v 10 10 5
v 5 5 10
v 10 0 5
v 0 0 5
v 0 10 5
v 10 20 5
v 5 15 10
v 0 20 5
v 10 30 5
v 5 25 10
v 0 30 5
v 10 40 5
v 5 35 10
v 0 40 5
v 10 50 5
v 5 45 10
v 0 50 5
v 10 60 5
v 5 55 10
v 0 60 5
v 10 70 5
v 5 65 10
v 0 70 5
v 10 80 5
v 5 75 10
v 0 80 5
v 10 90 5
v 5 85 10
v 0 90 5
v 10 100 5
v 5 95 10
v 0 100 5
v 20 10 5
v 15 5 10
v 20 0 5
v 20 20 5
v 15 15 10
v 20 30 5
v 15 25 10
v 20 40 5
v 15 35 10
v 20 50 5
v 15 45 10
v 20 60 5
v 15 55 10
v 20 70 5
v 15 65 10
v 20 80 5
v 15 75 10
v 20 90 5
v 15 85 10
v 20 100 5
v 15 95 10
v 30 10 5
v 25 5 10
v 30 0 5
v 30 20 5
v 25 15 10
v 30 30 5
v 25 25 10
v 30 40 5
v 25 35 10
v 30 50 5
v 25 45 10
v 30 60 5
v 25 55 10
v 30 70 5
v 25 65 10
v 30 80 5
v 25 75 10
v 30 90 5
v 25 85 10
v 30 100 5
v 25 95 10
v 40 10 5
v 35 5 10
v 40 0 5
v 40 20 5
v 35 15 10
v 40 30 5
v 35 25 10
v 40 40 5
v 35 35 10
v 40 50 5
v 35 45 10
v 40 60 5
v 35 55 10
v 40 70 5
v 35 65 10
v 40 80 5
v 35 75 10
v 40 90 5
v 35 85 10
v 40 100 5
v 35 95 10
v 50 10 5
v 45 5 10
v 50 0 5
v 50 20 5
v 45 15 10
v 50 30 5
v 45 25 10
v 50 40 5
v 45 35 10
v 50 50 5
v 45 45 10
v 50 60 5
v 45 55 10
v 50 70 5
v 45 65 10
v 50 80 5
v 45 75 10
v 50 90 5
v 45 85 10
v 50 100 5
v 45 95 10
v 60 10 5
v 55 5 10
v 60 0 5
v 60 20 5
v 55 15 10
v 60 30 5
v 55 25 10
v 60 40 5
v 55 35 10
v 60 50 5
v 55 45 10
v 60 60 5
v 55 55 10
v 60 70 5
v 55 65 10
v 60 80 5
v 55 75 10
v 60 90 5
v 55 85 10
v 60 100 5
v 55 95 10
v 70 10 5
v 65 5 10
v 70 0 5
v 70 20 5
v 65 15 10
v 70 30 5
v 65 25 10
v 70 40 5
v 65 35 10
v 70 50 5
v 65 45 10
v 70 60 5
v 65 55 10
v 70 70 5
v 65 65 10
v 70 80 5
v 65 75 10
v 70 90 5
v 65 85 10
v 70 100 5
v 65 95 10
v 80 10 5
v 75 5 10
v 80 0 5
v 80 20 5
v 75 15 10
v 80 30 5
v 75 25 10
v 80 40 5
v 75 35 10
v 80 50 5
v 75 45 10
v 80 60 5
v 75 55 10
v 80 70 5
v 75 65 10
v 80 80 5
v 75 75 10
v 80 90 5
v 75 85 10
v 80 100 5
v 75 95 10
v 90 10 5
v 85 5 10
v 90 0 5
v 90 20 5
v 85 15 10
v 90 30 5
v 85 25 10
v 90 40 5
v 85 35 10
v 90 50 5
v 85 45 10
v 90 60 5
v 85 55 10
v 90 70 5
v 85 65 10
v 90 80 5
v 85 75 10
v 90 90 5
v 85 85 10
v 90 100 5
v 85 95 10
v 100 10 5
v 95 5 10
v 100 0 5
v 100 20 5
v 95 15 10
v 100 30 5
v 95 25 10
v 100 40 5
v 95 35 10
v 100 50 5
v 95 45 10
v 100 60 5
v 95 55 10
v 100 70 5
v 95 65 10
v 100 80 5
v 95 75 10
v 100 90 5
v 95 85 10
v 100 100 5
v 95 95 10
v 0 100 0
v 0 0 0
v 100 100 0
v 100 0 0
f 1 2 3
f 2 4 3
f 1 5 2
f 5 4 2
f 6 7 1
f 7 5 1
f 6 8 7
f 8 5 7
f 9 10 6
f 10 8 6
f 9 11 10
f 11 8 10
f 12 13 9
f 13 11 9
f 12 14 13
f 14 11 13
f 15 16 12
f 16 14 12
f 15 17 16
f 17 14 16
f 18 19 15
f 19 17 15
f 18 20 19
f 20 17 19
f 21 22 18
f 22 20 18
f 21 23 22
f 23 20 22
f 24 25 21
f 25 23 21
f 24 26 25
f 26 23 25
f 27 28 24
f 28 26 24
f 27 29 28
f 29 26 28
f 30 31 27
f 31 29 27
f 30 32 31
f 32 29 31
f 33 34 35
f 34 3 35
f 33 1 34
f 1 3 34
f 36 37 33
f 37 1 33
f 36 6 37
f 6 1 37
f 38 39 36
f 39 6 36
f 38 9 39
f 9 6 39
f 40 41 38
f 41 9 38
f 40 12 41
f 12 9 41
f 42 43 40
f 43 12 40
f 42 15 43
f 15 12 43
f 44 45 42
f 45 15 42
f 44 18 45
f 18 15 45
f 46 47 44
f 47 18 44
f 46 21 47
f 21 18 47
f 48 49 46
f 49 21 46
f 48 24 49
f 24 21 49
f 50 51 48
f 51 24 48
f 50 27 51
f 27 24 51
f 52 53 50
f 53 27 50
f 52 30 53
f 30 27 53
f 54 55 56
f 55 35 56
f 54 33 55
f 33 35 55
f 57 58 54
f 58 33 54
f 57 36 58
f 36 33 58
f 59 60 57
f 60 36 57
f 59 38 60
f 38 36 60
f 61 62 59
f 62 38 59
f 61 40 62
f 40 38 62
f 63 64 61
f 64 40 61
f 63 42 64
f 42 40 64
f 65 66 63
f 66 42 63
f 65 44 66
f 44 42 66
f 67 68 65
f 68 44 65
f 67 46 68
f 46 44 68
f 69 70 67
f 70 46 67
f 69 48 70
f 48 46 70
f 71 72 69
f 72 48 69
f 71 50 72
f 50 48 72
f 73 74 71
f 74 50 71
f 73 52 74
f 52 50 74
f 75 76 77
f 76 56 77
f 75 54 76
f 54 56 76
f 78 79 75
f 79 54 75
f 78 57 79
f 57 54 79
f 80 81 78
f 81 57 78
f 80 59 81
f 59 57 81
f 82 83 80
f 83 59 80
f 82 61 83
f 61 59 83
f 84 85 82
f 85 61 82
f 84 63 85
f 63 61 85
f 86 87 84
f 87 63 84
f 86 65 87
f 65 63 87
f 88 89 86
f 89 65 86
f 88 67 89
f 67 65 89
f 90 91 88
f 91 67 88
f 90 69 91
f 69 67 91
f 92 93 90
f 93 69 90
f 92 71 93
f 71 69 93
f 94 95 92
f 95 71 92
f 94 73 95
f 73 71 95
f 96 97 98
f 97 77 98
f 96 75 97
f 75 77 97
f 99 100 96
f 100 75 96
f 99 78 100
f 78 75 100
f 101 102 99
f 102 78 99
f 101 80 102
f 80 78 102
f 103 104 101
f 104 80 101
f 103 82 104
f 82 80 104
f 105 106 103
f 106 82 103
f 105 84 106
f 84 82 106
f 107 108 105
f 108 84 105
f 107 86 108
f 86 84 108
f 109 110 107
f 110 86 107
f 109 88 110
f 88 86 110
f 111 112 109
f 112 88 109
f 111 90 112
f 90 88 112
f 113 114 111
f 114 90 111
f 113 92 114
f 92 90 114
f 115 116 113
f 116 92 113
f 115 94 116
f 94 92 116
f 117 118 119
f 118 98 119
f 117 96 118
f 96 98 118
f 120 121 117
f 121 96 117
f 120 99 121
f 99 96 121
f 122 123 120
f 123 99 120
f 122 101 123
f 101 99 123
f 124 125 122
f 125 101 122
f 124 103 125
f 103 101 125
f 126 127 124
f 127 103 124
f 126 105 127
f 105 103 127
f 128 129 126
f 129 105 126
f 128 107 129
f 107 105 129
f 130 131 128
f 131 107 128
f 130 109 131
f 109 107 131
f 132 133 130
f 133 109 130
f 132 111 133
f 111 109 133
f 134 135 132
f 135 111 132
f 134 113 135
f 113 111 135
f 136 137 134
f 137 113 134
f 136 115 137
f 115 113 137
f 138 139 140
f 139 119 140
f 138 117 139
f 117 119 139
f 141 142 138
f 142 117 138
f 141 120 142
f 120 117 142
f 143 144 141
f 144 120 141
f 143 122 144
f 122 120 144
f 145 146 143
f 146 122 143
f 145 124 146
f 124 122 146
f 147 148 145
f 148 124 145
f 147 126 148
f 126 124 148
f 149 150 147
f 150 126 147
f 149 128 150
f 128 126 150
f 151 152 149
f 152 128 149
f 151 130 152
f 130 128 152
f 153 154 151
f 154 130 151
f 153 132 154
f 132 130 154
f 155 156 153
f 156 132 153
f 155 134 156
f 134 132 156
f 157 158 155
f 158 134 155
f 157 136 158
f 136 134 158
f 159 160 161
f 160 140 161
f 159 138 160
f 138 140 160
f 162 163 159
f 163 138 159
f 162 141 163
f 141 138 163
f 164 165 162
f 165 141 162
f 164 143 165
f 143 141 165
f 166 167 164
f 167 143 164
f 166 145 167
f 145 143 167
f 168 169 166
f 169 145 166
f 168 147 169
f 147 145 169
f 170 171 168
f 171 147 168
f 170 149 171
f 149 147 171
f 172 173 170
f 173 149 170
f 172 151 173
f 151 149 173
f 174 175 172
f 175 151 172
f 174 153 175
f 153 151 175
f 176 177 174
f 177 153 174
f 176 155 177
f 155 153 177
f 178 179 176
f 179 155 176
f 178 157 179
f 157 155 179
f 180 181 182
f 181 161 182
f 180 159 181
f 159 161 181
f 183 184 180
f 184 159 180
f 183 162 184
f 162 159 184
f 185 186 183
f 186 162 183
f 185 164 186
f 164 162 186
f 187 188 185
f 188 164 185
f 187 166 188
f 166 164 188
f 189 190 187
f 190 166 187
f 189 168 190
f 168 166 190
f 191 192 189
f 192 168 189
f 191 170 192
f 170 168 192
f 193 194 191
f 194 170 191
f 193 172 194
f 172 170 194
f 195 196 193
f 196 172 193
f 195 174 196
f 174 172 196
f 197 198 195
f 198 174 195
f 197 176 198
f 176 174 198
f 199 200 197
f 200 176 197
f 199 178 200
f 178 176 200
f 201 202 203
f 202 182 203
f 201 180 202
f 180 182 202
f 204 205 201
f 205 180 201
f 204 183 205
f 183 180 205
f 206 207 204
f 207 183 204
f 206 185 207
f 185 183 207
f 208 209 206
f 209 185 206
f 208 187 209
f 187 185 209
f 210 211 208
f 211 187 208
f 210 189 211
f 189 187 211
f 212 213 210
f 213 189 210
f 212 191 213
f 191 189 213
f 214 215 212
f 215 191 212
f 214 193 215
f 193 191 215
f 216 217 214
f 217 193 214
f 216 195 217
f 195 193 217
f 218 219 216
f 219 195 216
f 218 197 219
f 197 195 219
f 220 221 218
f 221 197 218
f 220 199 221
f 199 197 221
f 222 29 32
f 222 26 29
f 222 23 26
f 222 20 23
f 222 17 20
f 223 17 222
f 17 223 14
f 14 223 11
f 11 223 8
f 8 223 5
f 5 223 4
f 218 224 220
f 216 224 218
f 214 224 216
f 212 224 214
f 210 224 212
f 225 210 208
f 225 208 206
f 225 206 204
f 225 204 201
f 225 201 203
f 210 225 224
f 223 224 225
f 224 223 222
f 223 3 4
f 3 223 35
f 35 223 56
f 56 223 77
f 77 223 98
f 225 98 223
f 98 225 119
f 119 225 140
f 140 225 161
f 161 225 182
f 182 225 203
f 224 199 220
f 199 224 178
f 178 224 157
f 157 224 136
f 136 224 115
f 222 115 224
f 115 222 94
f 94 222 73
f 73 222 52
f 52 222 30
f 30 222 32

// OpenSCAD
module tri (d, x, y) {
  translate ([x, y, 0])
    polyhedron (
      points = [[d, d, 0], [d,-d, 0], [-d, -d, 0], [-d, d, 0], // the four points at base
                [ 0, 0, d]],                                   // the apex point 
      faces = [[0, 1, 4], [1, 2, 4], [2, 3, 4], [3, 0, 4],     // each triangle side
               [1, 0, 3], [2, 1, 3]]                           // two triangles for square base
     );
}

s = 5;
base_height = 5;

translate ([0, 0, base_height]) {
  for (x = [s:s * 2:100]) {
    for (y = [s:s * 2:100]) {
      tri (s, x, y);
    }
  }
}

cube ([100, 100, base_height]);
